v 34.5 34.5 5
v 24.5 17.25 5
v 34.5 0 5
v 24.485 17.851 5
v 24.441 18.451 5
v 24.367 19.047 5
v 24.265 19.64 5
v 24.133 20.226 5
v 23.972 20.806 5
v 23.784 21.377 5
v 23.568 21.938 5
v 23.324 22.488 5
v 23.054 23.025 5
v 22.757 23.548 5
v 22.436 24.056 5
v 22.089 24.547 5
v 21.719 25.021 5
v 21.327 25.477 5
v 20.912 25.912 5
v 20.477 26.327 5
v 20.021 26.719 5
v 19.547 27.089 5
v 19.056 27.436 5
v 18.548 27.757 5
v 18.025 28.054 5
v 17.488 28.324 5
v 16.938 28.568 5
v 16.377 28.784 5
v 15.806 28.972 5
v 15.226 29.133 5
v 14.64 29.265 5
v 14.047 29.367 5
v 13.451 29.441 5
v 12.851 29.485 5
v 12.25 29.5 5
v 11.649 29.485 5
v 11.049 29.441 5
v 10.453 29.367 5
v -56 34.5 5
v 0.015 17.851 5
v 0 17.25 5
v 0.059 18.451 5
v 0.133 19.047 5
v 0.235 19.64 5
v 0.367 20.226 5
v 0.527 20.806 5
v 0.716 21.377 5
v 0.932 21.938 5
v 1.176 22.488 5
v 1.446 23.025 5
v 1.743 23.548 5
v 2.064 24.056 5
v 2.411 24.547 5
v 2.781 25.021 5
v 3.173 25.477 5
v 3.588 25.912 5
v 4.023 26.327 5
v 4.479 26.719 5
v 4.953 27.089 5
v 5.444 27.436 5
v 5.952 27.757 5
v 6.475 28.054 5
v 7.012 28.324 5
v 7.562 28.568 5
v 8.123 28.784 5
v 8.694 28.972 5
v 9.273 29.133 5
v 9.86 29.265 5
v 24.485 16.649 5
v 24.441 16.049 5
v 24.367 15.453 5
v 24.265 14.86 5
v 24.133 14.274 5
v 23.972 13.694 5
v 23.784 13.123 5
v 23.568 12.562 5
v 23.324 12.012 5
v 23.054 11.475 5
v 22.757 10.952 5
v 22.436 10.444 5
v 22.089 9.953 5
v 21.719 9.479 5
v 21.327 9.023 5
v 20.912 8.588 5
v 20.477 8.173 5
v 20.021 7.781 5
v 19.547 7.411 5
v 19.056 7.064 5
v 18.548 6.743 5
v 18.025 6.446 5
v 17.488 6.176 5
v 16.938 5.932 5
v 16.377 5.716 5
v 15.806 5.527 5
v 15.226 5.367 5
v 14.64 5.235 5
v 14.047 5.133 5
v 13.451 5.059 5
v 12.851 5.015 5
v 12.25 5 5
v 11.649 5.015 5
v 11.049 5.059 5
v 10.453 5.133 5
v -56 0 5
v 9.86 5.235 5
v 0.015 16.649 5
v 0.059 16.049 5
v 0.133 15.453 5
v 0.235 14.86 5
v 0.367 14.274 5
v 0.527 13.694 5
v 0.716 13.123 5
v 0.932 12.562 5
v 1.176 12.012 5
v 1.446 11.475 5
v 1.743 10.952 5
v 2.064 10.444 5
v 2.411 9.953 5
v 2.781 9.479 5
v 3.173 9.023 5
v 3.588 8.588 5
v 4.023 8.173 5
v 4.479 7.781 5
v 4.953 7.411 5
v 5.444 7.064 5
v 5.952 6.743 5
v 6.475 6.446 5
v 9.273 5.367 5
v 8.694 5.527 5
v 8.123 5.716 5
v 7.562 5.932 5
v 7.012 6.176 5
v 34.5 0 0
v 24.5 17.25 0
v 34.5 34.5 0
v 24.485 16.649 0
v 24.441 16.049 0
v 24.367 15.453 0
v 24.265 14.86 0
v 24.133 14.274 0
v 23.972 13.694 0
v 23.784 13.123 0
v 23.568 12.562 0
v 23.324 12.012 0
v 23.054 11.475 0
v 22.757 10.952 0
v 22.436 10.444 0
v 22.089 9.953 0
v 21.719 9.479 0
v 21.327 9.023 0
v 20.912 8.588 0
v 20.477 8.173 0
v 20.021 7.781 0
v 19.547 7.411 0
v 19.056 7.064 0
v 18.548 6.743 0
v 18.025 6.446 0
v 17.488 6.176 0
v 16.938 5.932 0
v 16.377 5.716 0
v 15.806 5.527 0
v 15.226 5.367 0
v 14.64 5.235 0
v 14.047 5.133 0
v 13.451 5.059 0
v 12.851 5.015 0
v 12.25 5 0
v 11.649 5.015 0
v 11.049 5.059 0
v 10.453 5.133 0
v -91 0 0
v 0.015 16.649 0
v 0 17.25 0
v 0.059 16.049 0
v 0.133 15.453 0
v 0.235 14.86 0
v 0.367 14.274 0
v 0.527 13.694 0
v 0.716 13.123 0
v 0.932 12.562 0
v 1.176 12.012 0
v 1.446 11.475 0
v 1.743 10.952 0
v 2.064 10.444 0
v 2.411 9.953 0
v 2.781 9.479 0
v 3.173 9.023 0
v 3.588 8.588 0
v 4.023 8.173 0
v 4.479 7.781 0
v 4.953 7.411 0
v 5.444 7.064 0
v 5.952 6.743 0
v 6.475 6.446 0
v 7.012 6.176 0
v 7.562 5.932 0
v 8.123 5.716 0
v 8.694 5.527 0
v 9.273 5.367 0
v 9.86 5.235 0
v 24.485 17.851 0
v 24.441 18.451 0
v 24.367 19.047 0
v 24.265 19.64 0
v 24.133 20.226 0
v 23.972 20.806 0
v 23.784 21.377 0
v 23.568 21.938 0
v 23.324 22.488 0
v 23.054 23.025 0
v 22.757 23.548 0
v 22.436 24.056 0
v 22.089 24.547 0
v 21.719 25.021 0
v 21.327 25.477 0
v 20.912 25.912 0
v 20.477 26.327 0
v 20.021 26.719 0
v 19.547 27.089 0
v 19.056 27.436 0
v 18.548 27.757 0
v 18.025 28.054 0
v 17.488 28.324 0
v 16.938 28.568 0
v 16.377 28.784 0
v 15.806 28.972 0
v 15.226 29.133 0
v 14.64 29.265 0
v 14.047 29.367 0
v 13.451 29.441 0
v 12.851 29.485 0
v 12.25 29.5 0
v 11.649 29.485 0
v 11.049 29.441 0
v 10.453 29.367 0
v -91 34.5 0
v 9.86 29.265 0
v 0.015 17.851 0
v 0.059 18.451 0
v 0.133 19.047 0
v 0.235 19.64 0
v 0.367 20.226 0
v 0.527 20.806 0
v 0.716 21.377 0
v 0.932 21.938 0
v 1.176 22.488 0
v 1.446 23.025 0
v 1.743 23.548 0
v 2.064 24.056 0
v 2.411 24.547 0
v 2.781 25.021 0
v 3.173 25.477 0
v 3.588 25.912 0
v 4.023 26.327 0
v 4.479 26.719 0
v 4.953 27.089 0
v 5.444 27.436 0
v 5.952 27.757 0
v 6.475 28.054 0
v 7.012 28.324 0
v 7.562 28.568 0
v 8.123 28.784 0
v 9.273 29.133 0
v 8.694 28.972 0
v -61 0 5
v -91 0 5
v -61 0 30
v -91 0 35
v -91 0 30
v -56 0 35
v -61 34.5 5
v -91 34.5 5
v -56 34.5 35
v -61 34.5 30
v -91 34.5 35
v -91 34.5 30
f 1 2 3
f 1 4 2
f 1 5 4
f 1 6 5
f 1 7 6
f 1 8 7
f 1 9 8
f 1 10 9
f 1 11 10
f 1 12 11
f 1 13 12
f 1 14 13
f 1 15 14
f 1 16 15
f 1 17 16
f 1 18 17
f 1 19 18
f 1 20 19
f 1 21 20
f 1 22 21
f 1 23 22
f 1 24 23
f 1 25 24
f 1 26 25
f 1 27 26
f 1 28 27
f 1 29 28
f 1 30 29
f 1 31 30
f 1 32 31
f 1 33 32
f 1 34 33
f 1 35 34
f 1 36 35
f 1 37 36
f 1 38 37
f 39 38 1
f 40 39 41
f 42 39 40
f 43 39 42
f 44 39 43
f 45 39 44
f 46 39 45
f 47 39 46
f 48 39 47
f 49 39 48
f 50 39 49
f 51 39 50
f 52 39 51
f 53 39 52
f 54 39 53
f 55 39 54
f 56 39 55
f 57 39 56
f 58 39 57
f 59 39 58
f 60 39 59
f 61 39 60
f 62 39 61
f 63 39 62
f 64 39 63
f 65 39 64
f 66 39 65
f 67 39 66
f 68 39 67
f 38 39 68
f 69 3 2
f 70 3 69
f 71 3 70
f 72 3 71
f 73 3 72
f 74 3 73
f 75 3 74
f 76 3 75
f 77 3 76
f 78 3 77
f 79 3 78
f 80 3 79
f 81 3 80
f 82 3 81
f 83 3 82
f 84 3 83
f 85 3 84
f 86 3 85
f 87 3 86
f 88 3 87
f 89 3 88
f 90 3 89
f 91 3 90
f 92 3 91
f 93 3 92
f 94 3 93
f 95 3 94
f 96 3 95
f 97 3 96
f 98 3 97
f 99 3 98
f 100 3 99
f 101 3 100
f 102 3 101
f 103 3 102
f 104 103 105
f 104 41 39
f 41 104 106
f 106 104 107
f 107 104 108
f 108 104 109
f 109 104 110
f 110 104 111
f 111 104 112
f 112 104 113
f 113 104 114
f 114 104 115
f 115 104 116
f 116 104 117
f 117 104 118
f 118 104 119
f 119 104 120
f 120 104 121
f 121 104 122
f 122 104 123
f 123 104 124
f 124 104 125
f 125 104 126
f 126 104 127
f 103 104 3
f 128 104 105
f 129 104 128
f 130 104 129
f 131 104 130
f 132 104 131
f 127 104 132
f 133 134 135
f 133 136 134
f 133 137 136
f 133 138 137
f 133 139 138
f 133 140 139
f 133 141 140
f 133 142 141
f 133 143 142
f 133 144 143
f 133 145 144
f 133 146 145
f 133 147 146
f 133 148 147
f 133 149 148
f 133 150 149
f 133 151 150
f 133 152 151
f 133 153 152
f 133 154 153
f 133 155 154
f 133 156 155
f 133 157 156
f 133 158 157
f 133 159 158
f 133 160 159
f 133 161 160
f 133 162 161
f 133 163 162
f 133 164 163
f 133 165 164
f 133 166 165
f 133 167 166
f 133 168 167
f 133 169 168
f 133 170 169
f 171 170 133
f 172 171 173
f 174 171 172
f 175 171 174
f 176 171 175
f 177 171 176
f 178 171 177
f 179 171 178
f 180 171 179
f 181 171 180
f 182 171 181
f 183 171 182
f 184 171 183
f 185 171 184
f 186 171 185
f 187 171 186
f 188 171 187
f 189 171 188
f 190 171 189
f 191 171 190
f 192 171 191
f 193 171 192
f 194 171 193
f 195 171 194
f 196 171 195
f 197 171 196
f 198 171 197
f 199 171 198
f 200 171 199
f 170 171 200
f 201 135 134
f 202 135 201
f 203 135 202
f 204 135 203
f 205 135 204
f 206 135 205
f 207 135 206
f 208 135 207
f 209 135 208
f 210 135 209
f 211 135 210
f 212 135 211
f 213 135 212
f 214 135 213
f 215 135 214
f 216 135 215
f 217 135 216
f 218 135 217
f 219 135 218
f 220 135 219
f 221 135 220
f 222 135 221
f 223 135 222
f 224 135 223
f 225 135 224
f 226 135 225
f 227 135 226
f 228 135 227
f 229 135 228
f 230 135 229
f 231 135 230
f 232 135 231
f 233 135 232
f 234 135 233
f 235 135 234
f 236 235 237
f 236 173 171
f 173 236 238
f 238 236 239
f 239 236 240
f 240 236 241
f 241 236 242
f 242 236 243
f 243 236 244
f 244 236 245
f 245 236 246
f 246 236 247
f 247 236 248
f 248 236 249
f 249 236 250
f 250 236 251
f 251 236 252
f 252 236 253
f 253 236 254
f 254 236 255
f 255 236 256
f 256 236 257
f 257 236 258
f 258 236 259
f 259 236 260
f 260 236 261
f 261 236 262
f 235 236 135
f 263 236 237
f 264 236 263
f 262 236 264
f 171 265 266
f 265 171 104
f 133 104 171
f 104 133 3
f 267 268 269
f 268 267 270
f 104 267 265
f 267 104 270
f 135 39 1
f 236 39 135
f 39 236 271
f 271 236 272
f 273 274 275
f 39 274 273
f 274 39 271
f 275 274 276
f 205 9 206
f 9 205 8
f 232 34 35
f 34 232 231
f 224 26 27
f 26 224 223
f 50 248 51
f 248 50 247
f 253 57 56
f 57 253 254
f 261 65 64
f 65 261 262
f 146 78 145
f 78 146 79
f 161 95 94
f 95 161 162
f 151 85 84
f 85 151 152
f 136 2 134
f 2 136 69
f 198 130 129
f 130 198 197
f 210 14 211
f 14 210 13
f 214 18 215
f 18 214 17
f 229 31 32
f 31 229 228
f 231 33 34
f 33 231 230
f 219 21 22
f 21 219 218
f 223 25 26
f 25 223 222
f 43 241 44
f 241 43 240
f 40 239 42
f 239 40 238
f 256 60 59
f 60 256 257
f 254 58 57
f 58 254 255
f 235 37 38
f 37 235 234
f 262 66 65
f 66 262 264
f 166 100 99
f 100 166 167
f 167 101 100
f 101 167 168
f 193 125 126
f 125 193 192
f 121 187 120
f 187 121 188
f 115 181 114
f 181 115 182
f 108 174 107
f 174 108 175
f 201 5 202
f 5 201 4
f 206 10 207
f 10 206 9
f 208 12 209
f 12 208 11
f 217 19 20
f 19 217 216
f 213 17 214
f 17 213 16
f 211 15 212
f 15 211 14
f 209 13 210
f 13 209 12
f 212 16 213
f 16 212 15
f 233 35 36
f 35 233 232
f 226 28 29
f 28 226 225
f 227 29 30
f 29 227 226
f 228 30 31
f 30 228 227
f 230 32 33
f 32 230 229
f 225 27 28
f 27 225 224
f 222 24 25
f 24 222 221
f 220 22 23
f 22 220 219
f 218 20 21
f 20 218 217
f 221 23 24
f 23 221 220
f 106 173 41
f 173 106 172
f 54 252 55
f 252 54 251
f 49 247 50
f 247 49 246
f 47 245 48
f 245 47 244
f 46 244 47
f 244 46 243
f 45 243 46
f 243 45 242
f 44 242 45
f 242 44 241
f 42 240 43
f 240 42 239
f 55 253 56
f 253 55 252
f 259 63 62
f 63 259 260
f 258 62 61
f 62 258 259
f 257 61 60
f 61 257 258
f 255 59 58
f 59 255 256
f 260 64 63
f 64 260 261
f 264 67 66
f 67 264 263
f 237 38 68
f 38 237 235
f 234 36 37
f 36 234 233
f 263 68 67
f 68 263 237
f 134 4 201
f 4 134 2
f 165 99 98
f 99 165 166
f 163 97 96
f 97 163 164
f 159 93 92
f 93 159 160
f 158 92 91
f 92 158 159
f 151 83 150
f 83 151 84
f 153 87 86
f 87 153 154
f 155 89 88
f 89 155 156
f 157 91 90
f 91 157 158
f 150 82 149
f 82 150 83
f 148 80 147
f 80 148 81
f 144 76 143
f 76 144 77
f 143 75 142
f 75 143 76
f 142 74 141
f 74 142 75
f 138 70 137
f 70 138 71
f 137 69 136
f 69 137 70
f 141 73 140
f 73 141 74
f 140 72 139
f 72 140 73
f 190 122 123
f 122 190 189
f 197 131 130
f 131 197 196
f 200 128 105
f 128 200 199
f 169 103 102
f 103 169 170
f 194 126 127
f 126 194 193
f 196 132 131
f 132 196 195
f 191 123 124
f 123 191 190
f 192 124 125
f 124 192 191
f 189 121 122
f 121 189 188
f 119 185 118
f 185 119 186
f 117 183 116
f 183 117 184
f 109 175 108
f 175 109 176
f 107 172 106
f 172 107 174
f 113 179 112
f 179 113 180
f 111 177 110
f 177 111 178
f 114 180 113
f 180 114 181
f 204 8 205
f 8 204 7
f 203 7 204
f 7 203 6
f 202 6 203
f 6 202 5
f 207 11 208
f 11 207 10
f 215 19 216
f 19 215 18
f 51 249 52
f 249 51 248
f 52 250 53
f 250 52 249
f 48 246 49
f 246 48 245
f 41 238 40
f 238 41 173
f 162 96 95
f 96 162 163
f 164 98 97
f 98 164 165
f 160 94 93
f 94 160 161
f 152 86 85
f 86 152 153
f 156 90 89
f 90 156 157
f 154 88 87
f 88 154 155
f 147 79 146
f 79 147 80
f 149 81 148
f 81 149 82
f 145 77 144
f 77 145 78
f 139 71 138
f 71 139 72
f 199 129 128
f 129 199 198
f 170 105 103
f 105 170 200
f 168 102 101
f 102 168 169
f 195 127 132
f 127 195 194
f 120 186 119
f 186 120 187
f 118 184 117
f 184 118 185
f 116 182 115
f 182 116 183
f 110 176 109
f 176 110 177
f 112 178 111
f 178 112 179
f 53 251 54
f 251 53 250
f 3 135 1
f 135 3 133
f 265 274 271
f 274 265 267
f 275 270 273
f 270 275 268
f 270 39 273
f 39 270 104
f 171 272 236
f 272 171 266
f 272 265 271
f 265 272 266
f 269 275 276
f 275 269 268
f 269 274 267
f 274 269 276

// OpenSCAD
/* mail@AndreBetz.de Zwieselbrau.de*/

GewindeG58   = 22.5+2.0;
Surround     = 10;
Thickness    = 5;
HolderHight  = 61;
HolderSizeX  = GewindeG58;
HolderSizeY  = GewindeG58+Surround;
PodestThick  = 25;
PodestLength = 30;

$fn = 128;

difference() 
{
    translate ([0, 0, 0]) 
        cube ([HolderSizeX, HolderSizeY,Thickness],false);
    translate ([HolderSizeX/2,HolderSizeY/2, -0.1]) 
        cylinder(Thickness+0.2,GewindeG58/2,GewindeG58/2); 
}
//Length of holder
translate ([HolderSizeX, 0, 0])
    cube ([Surround, HolderSizeY,Thickness],false);
translate ([HolderSizeX, 0, 0])
    cube ([Surround, HolderSizeY,Thickness],false);
translate ([-HolderHight, 0, 0])
    cube ([HolderHight, HolderSizeY,Thickness],false);
//Podest
translate ([-HolderHight, 0, 0])
    cube ([Thickness, HolderSizeY,PodestThick+2*Thickness],false);
translate ([-HolderHight-PodestLength, 0, 0])
    cube ([PodestLength, HolderSizeY,Thickness],false);
translate ([-HolderHight-PodestLength, 0, PodestThick+Thickness])
    cube ([PodestLength, HolderSizeY,Thickness],false);
